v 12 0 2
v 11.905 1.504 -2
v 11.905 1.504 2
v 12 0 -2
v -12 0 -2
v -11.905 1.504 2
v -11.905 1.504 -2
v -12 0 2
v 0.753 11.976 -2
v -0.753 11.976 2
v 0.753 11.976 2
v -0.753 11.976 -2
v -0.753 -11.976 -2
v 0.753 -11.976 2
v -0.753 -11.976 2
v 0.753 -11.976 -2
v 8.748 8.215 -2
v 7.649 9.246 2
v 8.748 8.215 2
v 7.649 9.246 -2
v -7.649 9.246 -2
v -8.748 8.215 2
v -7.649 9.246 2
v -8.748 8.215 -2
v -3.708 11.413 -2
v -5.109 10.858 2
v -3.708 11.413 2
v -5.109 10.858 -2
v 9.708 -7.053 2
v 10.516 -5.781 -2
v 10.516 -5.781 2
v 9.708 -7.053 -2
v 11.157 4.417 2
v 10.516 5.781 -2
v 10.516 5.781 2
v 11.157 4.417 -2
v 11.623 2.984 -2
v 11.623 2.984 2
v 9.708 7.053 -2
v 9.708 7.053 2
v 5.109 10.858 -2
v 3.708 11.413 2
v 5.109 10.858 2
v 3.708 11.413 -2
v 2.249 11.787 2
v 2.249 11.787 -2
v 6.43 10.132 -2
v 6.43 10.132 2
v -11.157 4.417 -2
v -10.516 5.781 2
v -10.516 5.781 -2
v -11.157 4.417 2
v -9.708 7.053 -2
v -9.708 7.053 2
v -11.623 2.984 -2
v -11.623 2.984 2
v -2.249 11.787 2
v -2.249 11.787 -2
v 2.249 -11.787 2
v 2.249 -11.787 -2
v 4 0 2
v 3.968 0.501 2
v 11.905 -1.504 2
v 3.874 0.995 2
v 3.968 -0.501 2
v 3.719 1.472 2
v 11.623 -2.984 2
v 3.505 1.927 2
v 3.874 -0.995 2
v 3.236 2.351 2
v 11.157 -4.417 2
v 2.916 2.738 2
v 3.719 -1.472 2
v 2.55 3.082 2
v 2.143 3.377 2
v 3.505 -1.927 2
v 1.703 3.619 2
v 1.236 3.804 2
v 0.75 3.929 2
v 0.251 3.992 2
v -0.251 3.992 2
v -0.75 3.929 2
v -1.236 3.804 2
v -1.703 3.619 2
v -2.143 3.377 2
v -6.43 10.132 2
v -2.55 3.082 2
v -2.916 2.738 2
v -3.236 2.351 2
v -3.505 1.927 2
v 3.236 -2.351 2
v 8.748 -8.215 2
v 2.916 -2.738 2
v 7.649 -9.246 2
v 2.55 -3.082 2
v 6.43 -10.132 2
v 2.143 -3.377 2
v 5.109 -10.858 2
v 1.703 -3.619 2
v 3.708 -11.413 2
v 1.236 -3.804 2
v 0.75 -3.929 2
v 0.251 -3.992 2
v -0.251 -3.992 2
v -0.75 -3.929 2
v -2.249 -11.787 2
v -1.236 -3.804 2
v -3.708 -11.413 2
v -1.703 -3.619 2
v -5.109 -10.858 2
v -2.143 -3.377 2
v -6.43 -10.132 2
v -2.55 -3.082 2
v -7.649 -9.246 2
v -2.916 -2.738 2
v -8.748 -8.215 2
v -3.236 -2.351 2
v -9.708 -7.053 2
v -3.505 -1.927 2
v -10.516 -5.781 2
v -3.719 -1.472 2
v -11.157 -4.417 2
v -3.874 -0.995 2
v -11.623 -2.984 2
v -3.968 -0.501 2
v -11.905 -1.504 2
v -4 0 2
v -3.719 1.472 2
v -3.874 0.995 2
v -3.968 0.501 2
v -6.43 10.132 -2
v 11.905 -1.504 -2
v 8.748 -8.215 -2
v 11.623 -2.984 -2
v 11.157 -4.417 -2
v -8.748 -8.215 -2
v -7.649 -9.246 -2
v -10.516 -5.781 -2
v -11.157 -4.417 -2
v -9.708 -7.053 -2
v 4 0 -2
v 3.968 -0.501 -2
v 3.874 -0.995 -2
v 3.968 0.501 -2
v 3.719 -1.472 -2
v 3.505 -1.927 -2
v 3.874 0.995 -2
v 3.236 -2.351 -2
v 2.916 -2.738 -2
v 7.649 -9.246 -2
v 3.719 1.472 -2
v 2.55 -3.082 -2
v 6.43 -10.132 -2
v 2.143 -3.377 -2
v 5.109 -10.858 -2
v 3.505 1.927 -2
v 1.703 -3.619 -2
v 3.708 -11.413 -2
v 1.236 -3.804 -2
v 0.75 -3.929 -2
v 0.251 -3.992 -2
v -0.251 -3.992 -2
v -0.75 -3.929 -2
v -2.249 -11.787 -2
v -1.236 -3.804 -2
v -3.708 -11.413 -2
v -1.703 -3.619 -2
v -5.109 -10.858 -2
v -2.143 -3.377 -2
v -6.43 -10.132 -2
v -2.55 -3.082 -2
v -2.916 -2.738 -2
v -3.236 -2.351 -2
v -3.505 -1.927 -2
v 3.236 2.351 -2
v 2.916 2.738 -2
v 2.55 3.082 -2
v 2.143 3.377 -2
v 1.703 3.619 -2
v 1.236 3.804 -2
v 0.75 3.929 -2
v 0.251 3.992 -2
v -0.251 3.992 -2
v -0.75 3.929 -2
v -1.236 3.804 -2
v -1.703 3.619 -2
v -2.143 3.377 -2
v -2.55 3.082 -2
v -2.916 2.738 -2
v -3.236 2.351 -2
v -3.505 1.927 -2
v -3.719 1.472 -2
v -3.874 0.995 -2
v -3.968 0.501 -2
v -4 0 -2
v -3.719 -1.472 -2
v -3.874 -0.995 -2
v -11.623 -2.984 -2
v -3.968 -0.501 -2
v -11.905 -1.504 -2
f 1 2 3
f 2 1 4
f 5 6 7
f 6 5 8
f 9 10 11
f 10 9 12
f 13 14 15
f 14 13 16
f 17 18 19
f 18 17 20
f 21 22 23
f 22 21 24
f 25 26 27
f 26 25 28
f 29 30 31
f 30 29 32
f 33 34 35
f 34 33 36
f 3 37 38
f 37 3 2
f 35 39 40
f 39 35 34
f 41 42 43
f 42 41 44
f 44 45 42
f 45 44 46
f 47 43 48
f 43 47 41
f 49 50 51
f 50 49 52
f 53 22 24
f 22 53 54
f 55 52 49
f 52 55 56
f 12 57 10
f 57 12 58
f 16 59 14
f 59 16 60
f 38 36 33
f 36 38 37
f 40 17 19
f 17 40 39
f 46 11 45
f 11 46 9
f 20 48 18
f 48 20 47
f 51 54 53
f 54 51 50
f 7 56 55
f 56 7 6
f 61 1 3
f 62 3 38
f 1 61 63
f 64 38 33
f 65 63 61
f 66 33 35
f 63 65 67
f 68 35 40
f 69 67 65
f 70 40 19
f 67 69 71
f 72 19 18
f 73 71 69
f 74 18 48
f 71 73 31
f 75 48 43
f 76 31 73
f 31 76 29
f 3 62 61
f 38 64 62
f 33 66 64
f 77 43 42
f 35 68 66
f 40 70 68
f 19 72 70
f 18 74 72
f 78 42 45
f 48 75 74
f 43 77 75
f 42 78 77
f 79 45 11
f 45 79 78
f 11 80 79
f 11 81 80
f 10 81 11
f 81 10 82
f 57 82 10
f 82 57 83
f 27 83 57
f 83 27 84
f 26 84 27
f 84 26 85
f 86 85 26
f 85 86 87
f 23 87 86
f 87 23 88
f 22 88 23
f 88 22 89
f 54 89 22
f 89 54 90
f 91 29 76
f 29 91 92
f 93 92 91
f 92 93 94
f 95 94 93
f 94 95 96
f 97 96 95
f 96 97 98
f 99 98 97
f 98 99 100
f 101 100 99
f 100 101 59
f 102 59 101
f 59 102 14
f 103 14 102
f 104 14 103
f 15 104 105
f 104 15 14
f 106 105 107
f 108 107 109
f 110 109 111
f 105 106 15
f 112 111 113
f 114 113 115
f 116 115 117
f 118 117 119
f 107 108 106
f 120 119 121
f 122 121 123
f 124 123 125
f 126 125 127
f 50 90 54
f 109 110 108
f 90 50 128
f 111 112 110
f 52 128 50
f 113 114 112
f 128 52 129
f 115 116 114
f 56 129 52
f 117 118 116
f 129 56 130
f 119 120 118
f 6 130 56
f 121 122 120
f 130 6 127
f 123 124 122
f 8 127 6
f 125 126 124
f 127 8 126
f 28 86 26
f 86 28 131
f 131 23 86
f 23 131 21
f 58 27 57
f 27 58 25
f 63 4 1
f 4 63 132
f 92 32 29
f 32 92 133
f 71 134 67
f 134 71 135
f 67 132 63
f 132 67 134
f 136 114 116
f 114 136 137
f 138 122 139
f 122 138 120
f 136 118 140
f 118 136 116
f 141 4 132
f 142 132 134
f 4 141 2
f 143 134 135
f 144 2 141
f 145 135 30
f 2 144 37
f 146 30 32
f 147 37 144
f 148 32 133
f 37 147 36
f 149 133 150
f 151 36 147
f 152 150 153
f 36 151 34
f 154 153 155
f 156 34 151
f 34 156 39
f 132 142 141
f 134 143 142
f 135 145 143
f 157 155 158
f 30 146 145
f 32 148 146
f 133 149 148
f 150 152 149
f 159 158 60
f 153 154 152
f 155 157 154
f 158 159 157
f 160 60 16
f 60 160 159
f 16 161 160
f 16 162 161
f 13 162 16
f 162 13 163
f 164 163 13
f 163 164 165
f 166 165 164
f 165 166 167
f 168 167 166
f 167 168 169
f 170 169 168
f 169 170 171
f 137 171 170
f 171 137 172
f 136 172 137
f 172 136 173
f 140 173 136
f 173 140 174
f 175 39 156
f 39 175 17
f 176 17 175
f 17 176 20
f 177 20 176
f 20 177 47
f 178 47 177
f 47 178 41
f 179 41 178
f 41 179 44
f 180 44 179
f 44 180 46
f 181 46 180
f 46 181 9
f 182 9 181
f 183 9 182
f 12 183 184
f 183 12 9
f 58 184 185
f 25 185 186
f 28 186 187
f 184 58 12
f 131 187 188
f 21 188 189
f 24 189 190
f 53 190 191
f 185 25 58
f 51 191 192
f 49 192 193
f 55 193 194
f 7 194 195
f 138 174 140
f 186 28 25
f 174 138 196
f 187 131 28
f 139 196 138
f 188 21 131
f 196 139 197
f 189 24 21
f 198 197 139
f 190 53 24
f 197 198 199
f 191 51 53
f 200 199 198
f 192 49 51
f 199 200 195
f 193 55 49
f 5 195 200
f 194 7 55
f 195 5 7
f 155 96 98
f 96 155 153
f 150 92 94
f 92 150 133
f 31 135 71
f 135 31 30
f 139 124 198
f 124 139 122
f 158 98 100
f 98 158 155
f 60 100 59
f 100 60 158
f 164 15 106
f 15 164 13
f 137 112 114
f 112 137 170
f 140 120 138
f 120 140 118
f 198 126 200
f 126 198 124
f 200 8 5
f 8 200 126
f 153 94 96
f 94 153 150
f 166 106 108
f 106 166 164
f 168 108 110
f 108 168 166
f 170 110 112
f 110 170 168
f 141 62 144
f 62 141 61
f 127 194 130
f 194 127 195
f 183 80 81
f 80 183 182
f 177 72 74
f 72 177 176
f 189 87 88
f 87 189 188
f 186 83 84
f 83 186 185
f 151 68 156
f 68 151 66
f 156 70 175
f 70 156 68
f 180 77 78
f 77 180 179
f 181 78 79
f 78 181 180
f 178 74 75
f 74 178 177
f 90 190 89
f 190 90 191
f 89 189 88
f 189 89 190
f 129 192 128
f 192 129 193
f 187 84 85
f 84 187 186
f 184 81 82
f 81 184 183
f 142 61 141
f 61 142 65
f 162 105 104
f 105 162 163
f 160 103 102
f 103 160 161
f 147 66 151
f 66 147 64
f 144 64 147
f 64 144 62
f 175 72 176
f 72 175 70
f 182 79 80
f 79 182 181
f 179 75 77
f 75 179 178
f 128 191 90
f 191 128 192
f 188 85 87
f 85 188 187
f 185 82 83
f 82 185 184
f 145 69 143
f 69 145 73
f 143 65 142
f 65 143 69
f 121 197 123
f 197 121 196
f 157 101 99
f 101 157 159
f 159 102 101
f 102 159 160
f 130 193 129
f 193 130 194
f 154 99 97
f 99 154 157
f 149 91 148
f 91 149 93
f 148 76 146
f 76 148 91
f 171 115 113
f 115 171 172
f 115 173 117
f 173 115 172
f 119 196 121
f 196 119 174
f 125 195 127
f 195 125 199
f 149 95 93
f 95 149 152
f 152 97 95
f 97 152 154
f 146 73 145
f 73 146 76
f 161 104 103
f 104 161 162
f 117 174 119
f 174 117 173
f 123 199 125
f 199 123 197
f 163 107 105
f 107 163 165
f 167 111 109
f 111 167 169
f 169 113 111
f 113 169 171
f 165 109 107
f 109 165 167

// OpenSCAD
$fn = 50;


difference() {
	union() {
		translate(v = [0, 0, -2.0000000000]) {
			cylinder(h = 4, r = 12.0000000000);
		}
	}
	union() {
		translate(v = [0, 0, -100.0000000000]) {
			cylinder(h = 200, r = 4);
		}
	}
}
